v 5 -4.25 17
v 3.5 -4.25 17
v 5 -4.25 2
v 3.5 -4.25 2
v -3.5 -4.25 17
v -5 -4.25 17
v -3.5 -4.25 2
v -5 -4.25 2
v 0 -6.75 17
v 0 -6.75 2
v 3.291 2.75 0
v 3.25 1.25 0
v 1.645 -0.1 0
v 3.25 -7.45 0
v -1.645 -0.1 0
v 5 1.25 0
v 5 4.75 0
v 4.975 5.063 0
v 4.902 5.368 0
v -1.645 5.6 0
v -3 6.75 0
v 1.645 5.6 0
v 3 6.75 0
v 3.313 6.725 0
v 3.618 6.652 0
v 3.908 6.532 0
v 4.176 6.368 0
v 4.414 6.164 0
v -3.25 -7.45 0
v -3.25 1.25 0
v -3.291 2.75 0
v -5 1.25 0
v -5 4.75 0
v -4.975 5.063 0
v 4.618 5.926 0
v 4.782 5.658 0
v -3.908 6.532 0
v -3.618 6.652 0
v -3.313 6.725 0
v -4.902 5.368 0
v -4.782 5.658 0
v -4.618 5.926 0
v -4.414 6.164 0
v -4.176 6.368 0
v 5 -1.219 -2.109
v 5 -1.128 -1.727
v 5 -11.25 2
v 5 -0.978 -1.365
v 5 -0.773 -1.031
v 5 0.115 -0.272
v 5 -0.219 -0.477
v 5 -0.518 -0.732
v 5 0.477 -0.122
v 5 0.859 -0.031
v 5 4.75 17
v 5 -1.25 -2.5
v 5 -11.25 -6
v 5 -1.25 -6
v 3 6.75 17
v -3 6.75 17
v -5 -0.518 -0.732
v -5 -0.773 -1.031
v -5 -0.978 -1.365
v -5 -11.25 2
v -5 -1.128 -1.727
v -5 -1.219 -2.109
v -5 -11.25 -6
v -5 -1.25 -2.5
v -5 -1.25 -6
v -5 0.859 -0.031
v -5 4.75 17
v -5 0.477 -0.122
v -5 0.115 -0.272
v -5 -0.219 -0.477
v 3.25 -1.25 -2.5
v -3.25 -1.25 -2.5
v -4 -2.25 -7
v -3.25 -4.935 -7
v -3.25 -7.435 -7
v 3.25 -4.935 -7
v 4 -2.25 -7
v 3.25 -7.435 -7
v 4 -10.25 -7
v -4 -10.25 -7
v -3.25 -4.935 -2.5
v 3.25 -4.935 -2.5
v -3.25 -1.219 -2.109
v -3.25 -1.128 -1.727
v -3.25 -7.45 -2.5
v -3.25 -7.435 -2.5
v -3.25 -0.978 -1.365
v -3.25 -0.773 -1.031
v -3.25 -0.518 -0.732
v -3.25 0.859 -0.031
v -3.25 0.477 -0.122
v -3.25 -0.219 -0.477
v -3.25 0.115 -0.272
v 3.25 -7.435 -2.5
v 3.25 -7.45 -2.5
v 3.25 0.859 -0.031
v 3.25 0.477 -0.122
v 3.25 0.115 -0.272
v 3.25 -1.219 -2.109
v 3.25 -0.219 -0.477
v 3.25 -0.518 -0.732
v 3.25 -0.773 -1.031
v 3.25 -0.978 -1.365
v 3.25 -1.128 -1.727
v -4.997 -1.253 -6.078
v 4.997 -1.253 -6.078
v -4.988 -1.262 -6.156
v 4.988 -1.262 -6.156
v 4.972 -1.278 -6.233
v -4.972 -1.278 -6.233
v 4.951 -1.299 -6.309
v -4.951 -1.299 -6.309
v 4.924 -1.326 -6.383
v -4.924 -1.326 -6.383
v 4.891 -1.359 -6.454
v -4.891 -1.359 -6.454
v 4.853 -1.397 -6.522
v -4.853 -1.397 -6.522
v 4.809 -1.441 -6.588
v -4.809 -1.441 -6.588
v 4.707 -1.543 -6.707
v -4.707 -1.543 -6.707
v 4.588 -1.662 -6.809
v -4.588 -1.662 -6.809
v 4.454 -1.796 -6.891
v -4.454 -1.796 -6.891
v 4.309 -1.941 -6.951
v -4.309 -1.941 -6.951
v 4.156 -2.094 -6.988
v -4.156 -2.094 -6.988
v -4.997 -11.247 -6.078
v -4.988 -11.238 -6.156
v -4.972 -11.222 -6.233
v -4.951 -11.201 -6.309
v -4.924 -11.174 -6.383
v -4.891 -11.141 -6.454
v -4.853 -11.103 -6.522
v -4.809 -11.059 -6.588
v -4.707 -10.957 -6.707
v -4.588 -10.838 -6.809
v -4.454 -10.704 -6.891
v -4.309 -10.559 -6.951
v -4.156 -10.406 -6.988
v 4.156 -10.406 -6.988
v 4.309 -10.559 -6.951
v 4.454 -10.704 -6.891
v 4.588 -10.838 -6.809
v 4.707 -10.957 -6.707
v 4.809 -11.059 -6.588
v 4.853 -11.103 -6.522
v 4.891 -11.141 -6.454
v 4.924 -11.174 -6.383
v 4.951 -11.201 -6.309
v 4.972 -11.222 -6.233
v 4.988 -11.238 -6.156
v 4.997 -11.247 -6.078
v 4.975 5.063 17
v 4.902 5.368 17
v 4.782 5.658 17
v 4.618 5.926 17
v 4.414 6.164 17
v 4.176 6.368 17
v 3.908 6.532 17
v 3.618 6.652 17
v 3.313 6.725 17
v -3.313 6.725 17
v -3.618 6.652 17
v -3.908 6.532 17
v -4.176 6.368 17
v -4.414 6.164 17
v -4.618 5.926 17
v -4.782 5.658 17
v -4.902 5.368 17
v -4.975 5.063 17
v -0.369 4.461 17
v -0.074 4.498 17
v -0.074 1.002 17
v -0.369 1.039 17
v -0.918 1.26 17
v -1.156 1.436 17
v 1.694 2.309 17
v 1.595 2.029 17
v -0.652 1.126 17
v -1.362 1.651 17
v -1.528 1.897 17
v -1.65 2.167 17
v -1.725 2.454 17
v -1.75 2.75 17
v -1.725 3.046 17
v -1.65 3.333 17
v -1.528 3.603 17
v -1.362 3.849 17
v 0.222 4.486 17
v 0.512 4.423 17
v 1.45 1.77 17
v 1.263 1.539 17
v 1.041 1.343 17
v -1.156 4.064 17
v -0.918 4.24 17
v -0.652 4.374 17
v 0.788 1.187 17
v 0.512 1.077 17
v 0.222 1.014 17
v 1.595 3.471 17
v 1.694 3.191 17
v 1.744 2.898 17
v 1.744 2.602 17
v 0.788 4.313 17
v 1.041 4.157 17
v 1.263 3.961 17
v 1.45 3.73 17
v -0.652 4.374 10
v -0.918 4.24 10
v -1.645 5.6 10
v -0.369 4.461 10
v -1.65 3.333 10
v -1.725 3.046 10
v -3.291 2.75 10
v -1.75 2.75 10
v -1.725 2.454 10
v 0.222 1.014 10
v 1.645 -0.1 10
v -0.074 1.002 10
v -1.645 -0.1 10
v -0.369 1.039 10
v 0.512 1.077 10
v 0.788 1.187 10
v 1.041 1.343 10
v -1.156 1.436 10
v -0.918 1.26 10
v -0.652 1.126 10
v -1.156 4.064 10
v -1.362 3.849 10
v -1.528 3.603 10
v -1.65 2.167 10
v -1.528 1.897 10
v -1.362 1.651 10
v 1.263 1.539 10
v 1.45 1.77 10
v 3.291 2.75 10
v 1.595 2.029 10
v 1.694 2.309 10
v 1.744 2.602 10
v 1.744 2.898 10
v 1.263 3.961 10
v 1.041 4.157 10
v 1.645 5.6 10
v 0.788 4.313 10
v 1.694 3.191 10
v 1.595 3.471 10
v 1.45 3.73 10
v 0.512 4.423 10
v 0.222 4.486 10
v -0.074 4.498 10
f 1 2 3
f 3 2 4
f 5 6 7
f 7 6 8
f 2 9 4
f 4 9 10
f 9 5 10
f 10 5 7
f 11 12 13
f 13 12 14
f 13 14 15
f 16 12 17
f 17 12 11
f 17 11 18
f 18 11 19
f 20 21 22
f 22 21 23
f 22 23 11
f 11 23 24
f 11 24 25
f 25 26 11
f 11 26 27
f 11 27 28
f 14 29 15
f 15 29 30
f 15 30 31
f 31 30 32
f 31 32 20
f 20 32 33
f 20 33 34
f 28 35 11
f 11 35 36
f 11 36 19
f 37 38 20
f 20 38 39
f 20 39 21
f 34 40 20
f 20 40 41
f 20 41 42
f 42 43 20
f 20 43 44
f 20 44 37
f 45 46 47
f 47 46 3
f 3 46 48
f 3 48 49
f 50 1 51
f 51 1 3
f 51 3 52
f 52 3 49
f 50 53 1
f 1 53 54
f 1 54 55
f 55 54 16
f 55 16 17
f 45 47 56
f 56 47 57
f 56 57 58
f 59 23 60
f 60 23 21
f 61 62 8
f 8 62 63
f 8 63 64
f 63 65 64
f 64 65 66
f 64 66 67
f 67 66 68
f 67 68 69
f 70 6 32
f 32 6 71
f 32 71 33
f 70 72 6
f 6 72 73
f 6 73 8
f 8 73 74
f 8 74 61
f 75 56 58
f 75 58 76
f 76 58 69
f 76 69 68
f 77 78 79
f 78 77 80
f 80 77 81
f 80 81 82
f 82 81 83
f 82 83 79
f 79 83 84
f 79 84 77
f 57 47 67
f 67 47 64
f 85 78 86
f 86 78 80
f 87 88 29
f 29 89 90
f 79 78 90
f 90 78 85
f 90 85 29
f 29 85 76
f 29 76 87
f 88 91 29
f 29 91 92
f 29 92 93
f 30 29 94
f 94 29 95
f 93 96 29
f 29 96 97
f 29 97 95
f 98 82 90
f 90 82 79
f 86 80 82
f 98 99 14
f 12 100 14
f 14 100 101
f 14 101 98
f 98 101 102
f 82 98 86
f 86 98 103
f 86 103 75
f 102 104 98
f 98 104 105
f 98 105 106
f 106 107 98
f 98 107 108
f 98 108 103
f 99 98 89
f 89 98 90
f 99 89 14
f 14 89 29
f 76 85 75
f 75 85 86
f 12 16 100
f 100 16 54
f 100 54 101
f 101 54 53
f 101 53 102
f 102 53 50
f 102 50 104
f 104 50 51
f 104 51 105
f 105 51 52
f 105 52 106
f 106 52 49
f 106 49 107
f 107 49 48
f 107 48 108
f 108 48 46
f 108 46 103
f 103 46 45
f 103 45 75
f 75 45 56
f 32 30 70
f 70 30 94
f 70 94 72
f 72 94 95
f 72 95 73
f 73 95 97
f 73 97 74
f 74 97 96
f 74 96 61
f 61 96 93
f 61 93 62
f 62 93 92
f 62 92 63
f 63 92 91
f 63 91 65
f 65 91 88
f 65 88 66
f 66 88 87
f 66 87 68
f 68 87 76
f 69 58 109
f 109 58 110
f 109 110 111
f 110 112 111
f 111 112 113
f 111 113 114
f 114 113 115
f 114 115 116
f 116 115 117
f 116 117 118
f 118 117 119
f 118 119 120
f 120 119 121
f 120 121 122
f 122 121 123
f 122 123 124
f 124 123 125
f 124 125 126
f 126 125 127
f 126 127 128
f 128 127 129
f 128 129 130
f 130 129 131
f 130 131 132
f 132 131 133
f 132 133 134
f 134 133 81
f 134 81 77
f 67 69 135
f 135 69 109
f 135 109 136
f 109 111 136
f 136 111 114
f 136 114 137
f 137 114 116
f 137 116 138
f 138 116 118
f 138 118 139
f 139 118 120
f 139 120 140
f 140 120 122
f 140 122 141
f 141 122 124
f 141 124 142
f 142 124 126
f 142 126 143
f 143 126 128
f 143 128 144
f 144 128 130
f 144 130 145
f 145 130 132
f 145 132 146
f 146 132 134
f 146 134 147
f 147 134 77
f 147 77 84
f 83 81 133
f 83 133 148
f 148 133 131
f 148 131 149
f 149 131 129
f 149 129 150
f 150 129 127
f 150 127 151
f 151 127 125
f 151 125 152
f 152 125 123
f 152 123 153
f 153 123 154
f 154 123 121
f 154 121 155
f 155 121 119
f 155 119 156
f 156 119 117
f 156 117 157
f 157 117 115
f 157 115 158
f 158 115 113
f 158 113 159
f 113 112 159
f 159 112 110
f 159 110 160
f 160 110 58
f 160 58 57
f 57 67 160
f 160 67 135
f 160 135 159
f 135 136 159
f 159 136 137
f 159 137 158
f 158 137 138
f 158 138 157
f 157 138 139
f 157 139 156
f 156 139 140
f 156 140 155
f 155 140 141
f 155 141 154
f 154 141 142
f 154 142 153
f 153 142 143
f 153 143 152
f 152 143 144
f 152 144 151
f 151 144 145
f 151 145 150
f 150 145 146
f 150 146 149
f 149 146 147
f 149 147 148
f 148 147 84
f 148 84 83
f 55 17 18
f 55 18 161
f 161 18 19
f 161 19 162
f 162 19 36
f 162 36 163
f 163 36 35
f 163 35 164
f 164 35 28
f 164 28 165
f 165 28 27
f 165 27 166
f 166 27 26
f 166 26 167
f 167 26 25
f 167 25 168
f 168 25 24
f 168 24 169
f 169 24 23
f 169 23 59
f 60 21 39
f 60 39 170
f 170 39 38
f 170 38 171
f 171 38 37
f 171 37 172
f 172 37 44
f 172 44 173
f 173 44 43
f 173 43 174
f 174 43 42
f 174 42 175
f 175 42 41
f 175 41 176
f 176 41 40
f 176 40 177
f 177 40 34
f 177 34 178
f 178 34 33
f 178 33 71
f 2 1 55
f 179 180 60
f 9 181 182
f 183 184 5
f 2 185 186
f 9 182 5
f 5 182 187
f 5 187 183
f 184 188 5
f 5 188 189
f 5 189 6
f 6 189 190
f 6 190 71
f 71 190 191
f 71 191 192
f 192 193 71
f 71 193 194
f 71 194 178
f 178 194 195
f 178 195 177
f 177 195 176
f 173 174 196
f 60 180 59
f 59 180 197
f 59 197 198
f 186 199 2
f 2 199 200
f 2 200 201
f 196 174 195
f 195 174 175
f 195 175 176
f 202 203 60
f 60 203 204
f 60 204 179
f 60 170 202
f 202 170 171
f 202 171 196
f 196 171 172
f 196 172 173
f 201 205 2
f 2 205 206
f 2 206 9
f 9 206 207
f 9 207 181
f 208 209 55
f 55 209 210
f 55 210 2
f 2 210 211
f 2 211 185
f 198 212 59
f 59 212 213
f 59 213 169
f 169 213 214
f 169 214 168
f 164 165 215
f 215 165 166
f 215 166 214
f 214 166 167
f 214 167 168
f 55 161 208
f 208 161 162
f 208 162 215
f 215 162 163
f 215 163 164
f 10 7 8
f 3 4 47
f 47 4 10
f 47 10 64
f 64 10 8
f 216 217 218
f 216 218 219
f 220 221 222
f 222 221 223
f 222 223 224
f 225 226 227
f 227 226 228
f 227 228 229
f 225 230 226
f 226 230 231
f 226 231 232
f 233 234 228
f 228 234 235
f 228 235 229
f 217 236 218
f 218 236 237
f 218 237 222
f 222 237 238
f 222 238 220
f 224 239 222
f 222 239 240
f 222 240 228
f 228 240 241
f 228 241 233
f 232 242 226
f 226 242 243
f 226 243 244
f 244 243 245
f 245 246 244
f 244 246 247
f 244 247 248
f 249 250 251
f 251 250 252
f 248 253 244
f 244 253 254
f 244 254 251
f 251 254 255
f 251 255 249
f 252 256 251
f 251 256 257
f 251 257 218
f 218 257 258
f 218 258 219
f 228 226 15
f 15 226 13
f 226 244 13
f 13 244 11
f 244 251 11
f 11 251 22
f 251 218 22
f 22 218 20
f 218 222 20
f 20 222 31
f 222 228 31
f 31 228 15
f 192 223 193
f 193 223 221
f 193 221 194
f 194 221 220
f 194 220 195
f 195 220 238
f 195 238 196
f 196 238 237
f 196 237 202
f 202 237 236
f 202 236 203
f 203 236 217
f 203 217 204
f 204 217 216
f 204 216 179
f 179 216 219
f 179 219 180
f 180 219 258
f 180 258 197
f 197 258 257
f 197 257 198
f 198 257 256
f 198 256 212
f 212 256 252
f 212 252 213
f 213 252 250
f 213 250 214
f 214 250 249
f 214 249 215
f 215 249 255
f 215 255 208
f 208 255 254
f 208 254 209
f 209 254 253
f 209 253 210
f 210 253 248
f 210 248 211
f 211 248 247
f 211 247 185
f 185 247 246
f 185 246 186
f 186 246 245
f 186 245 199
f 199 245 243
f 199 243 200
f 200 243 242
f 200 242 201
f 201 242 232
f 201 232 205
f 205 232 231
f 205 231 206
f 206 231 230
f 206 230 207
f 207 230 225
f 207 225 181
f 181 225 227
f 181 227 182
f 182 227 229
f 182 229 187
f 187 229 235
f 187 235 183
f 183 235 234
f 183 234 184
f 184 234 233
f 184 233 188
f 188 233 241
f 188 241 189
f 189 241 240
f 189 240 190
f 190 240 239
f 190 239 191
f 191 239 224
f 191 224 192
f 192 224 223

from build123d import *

# Parameters (mm, degrees)
EXTRUDE_1_DEPTH     = 7
SKETCH_6_R          = 1.5
CUT_EXTRUDE_1_DEPTH = 11.934463864
CUT_EXTRUDE_2_DEPTH = 3
EXTRUDE_3_DEPTH     = 7
SKETCH_10_W         = 10
SKETCH_10_H         = 7
EXTRUDE_4_DEPTH     = 7
SKETCH_12_W         = 3.25
SKETCH_12_H         = 1.314739763
SKETCH_12_H_2       = 1.185260237
CUT_EXTRUDE_3_DEPTH = 7
CUT_EXTRUDE_4_DEPTH = 6.2
FILLET_1_R          = 2.5
FILLET_2_R          = 1
FILLET_4_R          = 2
EXTRUDE_START       = 10
SKETCH_14_R         = 1.5
EXTRUDE_5_DEPTH     = 10
SKETCH_15_W         = 10
SKETCH_15_H         = 7
EXTRUDE_6_DEPTH     = 2
CUT_EXTRUDE_5_DEPTH = 10
CUT_EXTRUDE_6_DEPTH = 10
SKETCH_19_R         = 1.75
CUT_EXTRUDE_7_DEPTH = 21.989580749


with BuildPart() as part:
    # Эскиз3 → Бобышка-Вытянуть1 (new body)
    with BuildSketch(Plane.XY):
        Polygon((0, -6.75), (-3.5, -4.25), (-5, -4.25), (-5, 4.75), (-5, 6.75), (5, 6.75), (5, -4.25), (3.5, -4.25), align=None)
    extrude(amount=EXTRUDE_1_DEPTH)

    # Эскиз6 → Вырез-Вытянуть1 (cut, through all)
    with BuildSketch(Plane(origin=(0, 0, 0), x_dir=(-1, 0, 0), z_dir=(0, 0, -1))):
        with Locations((0, 2.75)):
            Circle(SKETCH_6_R)
    extrude(amount=-CUT_EXTRUDE_1_DEPTH, mode=Mode.SUBTRACT)

    # Эскиз7 → Вырез-Вытянуть2 (cut)
    with BuildSketch(Plane(origin=(0, 0, 0), x_dir=(-1, 0, 0), z_dir=(0, 0, -1))):
        Polygon((1.58771324, 0), (3.175426481, 2.75), (1.58771324, 5.5), (-1.58771324, 5.5), (-3.175426481, 2.75), (-1.58771324, 0), align=None)
    extrude(amount=-CUT_EXTRUDE_2_DEPTH, mode=Mode.SUBTRACT)

    # Эскиз8 → Бобышка-Вытянуть3 (add)
    with BuildSketch(Plane(origin=(0, 0, 0), x_dir=(-1, 0, 0), z_dir=(0, 0, -1))):
        Polygon((-5, -1.25), (-5, -4.25), (-3.5, -4.25), (3.5, -4.25), (5, -4.25), (5, -1.25), align=None)
    extrude(amount=EXTRUDE_3_DEPTH)

    # Эскиз10 → Бобышка-Вытянуть4 (add)
    with BuildSketch(Plane.XZ.offset(4.25)):
        with Locations((0, -3.5)):
            Rectangle(SKETCH_10_W, SKETCH_10_H)
    extrude(amount=EXTRUDE_4_DEPTH)

    # Эскиз12 → Вырез-Вытянуть3 (cut)
    with BuildSketch(Plane(origin=(0, 0, -7), x_dir=(-1, 0, 0), z_dir=(0, 0, -1))):
        with Locations((-1.625, -5.592630119)):
            Rectangle(SKETCH_12_W, SKETCH_12_H)
        with Locations((1.625, -5.592630119)):
            Rectangle(SKETCH_12_W, SKETCH_12_H)
        with Locations((1.625, -6.842630119)):
            Rectangle(SKETCH_12_W, SKETCH_12_H_2)
        with Locations((-1.625, -6.842630119)):
            Rectangle(SKETCH_12_W, SKETCH_12_H_2)
    extrude(amount=-CUT_EXTRUDE_3_DEPTH, mode=Mode.SUBTRACT)

    # Эскиз13 → Вырез-Вытянуть4 (cut)
    with BuildSketch(Plane(origin=(0, -1.25, 0), x_dir=(1, 0, 0), z_dir=(0, 1, 0))):
        Polygon((0, 0), (3.25, 0), (3.25, 2.5), (-3.25, 2.5), (-3.25, 0), align=None)
    extrude(amount=-CUT_EXTRUDE_4_DEPTH, mode=Mode.SUBTRACT)

    # Скругление1
    fillet_1_edges = [part.edges().sort_by_distance(p)[0] for p in [
        (4.125, -1.25, 0),
        (-4.125, -1.25, 0),
    ]]
    fillet(fillet_1_edges, radius=FILLET_1_R)

    # Скругление2
    fillet_2_edges = [part.edges().sort_by_distance(p)[0] for p in [
        (0, -11.25, -7),
        (5, -6.25, -7),
        (-5, -6.25, -7),
        (0, -1.25, -7),
    ]]
    fillet(fillet_2_edges, radius=FILLET_2_R)

    # Скругление4
    fillet_4_edges = [part.edges().sort_by_distance(p)[0] for p in [
        (5, 6.75, 3.5),
        (-5, 6.75, 3.5),
    ]]
    fillet(fillet_4_edges, radius=FILLET_4_R)

    # Эскиз14 → Бобышка-Вытянуть5 (add)
    with BuildSketch(Plane.XY.offset(7).offset(EXTRUDE_START)):
        with BuildLine():
            Line((3.5, -4.25), (5, -4.25))
            Line((5, -4.25), (5, 4.75))
            ThreePointArc((5, 4.75), (4.414213562, 6.164213562), (3, 6.75))
            Line((3, 6.75), (-3, 6.75))
            ThreePointArc((-3, 6.75), (-4.414213562, 6.164213562), (-5, 4.75))
            Line((-5, 4.75), (-5, -4.25))
            Line((-5, -4.25), (-3.5, -4.25))
            Line((-3.5, -4.25), (0, -6.75))
            Line((0, -6.75), (3.5, -4.25))
        make_face()
        with Locations(Location((0, 2.75, 0), (0, 0, 180))):
            Circle(SKETCH_14_R, mode=Mode.SUBTRACT)
    extrude(amount=-EXTRUDE_5_DEPTH)

    # Эскиз15 → Бобышка-Вытянуть6 (add)
    with BuildSketch(Plane.XY):
        with Locations((0, -7.75)):
            Rectangle(SKETCH_15_W, SKETCH_15_H)
    extrude(amount=EXTRUDE_6_DEPTH)

    # Эскиз17 → Вырез-Вытянуть5 (cut)
    with BuildSketch(Plane(origin=(0, 0, 0), x_dir=(-1, 0, 0), z_dir=(0, 0, -1))):
        Polygon((1.58771324, 0), (3.175426481, 2.75), (1.58771324, 5.5), (-1.58771324, 5.5), (-3.175426481, 2.75), (-1.58771324, 0), align=None)
    extrude(amount=-CUT_EXTRUDE_5_DEPTH, mode=Mode.SUBTRACT)

    # Эскиз18 → Вырез-Вытянуть6 (cut)
    with BuildSketch(Plane(origin=(0, 0, 0), x_dir=(-1, 0, 0), z_dir=(0, 0, -1))):
        Polygon((1.645448267, -0.1), (3.290896534, 2.75), (1.645448267, 5.6), (-1.645448267, 5.6), (-3.290896534, 2.75), (-1.645448267, -0.1), align=None)
    extrude(amount=-CUT_EXTRUDE_6_DEPTH, mode=Mode.SUBTRACT)

    # Эскиз19 → Вырез-Вытянуть7 (cut, through all)
    with BuildSketch(Plane(origin=(0, 0, 10), x_dir=(-1, 0, 0), z_dir=(0, 0, -1))):
        with Locations((0, 2.75)):
            Circle(SKETCH_19_R)
    extrude(amount=-CUT_EXTRUDE_7_DEPTH, mode=Mode.SUBTRACT)


solid = part.part
